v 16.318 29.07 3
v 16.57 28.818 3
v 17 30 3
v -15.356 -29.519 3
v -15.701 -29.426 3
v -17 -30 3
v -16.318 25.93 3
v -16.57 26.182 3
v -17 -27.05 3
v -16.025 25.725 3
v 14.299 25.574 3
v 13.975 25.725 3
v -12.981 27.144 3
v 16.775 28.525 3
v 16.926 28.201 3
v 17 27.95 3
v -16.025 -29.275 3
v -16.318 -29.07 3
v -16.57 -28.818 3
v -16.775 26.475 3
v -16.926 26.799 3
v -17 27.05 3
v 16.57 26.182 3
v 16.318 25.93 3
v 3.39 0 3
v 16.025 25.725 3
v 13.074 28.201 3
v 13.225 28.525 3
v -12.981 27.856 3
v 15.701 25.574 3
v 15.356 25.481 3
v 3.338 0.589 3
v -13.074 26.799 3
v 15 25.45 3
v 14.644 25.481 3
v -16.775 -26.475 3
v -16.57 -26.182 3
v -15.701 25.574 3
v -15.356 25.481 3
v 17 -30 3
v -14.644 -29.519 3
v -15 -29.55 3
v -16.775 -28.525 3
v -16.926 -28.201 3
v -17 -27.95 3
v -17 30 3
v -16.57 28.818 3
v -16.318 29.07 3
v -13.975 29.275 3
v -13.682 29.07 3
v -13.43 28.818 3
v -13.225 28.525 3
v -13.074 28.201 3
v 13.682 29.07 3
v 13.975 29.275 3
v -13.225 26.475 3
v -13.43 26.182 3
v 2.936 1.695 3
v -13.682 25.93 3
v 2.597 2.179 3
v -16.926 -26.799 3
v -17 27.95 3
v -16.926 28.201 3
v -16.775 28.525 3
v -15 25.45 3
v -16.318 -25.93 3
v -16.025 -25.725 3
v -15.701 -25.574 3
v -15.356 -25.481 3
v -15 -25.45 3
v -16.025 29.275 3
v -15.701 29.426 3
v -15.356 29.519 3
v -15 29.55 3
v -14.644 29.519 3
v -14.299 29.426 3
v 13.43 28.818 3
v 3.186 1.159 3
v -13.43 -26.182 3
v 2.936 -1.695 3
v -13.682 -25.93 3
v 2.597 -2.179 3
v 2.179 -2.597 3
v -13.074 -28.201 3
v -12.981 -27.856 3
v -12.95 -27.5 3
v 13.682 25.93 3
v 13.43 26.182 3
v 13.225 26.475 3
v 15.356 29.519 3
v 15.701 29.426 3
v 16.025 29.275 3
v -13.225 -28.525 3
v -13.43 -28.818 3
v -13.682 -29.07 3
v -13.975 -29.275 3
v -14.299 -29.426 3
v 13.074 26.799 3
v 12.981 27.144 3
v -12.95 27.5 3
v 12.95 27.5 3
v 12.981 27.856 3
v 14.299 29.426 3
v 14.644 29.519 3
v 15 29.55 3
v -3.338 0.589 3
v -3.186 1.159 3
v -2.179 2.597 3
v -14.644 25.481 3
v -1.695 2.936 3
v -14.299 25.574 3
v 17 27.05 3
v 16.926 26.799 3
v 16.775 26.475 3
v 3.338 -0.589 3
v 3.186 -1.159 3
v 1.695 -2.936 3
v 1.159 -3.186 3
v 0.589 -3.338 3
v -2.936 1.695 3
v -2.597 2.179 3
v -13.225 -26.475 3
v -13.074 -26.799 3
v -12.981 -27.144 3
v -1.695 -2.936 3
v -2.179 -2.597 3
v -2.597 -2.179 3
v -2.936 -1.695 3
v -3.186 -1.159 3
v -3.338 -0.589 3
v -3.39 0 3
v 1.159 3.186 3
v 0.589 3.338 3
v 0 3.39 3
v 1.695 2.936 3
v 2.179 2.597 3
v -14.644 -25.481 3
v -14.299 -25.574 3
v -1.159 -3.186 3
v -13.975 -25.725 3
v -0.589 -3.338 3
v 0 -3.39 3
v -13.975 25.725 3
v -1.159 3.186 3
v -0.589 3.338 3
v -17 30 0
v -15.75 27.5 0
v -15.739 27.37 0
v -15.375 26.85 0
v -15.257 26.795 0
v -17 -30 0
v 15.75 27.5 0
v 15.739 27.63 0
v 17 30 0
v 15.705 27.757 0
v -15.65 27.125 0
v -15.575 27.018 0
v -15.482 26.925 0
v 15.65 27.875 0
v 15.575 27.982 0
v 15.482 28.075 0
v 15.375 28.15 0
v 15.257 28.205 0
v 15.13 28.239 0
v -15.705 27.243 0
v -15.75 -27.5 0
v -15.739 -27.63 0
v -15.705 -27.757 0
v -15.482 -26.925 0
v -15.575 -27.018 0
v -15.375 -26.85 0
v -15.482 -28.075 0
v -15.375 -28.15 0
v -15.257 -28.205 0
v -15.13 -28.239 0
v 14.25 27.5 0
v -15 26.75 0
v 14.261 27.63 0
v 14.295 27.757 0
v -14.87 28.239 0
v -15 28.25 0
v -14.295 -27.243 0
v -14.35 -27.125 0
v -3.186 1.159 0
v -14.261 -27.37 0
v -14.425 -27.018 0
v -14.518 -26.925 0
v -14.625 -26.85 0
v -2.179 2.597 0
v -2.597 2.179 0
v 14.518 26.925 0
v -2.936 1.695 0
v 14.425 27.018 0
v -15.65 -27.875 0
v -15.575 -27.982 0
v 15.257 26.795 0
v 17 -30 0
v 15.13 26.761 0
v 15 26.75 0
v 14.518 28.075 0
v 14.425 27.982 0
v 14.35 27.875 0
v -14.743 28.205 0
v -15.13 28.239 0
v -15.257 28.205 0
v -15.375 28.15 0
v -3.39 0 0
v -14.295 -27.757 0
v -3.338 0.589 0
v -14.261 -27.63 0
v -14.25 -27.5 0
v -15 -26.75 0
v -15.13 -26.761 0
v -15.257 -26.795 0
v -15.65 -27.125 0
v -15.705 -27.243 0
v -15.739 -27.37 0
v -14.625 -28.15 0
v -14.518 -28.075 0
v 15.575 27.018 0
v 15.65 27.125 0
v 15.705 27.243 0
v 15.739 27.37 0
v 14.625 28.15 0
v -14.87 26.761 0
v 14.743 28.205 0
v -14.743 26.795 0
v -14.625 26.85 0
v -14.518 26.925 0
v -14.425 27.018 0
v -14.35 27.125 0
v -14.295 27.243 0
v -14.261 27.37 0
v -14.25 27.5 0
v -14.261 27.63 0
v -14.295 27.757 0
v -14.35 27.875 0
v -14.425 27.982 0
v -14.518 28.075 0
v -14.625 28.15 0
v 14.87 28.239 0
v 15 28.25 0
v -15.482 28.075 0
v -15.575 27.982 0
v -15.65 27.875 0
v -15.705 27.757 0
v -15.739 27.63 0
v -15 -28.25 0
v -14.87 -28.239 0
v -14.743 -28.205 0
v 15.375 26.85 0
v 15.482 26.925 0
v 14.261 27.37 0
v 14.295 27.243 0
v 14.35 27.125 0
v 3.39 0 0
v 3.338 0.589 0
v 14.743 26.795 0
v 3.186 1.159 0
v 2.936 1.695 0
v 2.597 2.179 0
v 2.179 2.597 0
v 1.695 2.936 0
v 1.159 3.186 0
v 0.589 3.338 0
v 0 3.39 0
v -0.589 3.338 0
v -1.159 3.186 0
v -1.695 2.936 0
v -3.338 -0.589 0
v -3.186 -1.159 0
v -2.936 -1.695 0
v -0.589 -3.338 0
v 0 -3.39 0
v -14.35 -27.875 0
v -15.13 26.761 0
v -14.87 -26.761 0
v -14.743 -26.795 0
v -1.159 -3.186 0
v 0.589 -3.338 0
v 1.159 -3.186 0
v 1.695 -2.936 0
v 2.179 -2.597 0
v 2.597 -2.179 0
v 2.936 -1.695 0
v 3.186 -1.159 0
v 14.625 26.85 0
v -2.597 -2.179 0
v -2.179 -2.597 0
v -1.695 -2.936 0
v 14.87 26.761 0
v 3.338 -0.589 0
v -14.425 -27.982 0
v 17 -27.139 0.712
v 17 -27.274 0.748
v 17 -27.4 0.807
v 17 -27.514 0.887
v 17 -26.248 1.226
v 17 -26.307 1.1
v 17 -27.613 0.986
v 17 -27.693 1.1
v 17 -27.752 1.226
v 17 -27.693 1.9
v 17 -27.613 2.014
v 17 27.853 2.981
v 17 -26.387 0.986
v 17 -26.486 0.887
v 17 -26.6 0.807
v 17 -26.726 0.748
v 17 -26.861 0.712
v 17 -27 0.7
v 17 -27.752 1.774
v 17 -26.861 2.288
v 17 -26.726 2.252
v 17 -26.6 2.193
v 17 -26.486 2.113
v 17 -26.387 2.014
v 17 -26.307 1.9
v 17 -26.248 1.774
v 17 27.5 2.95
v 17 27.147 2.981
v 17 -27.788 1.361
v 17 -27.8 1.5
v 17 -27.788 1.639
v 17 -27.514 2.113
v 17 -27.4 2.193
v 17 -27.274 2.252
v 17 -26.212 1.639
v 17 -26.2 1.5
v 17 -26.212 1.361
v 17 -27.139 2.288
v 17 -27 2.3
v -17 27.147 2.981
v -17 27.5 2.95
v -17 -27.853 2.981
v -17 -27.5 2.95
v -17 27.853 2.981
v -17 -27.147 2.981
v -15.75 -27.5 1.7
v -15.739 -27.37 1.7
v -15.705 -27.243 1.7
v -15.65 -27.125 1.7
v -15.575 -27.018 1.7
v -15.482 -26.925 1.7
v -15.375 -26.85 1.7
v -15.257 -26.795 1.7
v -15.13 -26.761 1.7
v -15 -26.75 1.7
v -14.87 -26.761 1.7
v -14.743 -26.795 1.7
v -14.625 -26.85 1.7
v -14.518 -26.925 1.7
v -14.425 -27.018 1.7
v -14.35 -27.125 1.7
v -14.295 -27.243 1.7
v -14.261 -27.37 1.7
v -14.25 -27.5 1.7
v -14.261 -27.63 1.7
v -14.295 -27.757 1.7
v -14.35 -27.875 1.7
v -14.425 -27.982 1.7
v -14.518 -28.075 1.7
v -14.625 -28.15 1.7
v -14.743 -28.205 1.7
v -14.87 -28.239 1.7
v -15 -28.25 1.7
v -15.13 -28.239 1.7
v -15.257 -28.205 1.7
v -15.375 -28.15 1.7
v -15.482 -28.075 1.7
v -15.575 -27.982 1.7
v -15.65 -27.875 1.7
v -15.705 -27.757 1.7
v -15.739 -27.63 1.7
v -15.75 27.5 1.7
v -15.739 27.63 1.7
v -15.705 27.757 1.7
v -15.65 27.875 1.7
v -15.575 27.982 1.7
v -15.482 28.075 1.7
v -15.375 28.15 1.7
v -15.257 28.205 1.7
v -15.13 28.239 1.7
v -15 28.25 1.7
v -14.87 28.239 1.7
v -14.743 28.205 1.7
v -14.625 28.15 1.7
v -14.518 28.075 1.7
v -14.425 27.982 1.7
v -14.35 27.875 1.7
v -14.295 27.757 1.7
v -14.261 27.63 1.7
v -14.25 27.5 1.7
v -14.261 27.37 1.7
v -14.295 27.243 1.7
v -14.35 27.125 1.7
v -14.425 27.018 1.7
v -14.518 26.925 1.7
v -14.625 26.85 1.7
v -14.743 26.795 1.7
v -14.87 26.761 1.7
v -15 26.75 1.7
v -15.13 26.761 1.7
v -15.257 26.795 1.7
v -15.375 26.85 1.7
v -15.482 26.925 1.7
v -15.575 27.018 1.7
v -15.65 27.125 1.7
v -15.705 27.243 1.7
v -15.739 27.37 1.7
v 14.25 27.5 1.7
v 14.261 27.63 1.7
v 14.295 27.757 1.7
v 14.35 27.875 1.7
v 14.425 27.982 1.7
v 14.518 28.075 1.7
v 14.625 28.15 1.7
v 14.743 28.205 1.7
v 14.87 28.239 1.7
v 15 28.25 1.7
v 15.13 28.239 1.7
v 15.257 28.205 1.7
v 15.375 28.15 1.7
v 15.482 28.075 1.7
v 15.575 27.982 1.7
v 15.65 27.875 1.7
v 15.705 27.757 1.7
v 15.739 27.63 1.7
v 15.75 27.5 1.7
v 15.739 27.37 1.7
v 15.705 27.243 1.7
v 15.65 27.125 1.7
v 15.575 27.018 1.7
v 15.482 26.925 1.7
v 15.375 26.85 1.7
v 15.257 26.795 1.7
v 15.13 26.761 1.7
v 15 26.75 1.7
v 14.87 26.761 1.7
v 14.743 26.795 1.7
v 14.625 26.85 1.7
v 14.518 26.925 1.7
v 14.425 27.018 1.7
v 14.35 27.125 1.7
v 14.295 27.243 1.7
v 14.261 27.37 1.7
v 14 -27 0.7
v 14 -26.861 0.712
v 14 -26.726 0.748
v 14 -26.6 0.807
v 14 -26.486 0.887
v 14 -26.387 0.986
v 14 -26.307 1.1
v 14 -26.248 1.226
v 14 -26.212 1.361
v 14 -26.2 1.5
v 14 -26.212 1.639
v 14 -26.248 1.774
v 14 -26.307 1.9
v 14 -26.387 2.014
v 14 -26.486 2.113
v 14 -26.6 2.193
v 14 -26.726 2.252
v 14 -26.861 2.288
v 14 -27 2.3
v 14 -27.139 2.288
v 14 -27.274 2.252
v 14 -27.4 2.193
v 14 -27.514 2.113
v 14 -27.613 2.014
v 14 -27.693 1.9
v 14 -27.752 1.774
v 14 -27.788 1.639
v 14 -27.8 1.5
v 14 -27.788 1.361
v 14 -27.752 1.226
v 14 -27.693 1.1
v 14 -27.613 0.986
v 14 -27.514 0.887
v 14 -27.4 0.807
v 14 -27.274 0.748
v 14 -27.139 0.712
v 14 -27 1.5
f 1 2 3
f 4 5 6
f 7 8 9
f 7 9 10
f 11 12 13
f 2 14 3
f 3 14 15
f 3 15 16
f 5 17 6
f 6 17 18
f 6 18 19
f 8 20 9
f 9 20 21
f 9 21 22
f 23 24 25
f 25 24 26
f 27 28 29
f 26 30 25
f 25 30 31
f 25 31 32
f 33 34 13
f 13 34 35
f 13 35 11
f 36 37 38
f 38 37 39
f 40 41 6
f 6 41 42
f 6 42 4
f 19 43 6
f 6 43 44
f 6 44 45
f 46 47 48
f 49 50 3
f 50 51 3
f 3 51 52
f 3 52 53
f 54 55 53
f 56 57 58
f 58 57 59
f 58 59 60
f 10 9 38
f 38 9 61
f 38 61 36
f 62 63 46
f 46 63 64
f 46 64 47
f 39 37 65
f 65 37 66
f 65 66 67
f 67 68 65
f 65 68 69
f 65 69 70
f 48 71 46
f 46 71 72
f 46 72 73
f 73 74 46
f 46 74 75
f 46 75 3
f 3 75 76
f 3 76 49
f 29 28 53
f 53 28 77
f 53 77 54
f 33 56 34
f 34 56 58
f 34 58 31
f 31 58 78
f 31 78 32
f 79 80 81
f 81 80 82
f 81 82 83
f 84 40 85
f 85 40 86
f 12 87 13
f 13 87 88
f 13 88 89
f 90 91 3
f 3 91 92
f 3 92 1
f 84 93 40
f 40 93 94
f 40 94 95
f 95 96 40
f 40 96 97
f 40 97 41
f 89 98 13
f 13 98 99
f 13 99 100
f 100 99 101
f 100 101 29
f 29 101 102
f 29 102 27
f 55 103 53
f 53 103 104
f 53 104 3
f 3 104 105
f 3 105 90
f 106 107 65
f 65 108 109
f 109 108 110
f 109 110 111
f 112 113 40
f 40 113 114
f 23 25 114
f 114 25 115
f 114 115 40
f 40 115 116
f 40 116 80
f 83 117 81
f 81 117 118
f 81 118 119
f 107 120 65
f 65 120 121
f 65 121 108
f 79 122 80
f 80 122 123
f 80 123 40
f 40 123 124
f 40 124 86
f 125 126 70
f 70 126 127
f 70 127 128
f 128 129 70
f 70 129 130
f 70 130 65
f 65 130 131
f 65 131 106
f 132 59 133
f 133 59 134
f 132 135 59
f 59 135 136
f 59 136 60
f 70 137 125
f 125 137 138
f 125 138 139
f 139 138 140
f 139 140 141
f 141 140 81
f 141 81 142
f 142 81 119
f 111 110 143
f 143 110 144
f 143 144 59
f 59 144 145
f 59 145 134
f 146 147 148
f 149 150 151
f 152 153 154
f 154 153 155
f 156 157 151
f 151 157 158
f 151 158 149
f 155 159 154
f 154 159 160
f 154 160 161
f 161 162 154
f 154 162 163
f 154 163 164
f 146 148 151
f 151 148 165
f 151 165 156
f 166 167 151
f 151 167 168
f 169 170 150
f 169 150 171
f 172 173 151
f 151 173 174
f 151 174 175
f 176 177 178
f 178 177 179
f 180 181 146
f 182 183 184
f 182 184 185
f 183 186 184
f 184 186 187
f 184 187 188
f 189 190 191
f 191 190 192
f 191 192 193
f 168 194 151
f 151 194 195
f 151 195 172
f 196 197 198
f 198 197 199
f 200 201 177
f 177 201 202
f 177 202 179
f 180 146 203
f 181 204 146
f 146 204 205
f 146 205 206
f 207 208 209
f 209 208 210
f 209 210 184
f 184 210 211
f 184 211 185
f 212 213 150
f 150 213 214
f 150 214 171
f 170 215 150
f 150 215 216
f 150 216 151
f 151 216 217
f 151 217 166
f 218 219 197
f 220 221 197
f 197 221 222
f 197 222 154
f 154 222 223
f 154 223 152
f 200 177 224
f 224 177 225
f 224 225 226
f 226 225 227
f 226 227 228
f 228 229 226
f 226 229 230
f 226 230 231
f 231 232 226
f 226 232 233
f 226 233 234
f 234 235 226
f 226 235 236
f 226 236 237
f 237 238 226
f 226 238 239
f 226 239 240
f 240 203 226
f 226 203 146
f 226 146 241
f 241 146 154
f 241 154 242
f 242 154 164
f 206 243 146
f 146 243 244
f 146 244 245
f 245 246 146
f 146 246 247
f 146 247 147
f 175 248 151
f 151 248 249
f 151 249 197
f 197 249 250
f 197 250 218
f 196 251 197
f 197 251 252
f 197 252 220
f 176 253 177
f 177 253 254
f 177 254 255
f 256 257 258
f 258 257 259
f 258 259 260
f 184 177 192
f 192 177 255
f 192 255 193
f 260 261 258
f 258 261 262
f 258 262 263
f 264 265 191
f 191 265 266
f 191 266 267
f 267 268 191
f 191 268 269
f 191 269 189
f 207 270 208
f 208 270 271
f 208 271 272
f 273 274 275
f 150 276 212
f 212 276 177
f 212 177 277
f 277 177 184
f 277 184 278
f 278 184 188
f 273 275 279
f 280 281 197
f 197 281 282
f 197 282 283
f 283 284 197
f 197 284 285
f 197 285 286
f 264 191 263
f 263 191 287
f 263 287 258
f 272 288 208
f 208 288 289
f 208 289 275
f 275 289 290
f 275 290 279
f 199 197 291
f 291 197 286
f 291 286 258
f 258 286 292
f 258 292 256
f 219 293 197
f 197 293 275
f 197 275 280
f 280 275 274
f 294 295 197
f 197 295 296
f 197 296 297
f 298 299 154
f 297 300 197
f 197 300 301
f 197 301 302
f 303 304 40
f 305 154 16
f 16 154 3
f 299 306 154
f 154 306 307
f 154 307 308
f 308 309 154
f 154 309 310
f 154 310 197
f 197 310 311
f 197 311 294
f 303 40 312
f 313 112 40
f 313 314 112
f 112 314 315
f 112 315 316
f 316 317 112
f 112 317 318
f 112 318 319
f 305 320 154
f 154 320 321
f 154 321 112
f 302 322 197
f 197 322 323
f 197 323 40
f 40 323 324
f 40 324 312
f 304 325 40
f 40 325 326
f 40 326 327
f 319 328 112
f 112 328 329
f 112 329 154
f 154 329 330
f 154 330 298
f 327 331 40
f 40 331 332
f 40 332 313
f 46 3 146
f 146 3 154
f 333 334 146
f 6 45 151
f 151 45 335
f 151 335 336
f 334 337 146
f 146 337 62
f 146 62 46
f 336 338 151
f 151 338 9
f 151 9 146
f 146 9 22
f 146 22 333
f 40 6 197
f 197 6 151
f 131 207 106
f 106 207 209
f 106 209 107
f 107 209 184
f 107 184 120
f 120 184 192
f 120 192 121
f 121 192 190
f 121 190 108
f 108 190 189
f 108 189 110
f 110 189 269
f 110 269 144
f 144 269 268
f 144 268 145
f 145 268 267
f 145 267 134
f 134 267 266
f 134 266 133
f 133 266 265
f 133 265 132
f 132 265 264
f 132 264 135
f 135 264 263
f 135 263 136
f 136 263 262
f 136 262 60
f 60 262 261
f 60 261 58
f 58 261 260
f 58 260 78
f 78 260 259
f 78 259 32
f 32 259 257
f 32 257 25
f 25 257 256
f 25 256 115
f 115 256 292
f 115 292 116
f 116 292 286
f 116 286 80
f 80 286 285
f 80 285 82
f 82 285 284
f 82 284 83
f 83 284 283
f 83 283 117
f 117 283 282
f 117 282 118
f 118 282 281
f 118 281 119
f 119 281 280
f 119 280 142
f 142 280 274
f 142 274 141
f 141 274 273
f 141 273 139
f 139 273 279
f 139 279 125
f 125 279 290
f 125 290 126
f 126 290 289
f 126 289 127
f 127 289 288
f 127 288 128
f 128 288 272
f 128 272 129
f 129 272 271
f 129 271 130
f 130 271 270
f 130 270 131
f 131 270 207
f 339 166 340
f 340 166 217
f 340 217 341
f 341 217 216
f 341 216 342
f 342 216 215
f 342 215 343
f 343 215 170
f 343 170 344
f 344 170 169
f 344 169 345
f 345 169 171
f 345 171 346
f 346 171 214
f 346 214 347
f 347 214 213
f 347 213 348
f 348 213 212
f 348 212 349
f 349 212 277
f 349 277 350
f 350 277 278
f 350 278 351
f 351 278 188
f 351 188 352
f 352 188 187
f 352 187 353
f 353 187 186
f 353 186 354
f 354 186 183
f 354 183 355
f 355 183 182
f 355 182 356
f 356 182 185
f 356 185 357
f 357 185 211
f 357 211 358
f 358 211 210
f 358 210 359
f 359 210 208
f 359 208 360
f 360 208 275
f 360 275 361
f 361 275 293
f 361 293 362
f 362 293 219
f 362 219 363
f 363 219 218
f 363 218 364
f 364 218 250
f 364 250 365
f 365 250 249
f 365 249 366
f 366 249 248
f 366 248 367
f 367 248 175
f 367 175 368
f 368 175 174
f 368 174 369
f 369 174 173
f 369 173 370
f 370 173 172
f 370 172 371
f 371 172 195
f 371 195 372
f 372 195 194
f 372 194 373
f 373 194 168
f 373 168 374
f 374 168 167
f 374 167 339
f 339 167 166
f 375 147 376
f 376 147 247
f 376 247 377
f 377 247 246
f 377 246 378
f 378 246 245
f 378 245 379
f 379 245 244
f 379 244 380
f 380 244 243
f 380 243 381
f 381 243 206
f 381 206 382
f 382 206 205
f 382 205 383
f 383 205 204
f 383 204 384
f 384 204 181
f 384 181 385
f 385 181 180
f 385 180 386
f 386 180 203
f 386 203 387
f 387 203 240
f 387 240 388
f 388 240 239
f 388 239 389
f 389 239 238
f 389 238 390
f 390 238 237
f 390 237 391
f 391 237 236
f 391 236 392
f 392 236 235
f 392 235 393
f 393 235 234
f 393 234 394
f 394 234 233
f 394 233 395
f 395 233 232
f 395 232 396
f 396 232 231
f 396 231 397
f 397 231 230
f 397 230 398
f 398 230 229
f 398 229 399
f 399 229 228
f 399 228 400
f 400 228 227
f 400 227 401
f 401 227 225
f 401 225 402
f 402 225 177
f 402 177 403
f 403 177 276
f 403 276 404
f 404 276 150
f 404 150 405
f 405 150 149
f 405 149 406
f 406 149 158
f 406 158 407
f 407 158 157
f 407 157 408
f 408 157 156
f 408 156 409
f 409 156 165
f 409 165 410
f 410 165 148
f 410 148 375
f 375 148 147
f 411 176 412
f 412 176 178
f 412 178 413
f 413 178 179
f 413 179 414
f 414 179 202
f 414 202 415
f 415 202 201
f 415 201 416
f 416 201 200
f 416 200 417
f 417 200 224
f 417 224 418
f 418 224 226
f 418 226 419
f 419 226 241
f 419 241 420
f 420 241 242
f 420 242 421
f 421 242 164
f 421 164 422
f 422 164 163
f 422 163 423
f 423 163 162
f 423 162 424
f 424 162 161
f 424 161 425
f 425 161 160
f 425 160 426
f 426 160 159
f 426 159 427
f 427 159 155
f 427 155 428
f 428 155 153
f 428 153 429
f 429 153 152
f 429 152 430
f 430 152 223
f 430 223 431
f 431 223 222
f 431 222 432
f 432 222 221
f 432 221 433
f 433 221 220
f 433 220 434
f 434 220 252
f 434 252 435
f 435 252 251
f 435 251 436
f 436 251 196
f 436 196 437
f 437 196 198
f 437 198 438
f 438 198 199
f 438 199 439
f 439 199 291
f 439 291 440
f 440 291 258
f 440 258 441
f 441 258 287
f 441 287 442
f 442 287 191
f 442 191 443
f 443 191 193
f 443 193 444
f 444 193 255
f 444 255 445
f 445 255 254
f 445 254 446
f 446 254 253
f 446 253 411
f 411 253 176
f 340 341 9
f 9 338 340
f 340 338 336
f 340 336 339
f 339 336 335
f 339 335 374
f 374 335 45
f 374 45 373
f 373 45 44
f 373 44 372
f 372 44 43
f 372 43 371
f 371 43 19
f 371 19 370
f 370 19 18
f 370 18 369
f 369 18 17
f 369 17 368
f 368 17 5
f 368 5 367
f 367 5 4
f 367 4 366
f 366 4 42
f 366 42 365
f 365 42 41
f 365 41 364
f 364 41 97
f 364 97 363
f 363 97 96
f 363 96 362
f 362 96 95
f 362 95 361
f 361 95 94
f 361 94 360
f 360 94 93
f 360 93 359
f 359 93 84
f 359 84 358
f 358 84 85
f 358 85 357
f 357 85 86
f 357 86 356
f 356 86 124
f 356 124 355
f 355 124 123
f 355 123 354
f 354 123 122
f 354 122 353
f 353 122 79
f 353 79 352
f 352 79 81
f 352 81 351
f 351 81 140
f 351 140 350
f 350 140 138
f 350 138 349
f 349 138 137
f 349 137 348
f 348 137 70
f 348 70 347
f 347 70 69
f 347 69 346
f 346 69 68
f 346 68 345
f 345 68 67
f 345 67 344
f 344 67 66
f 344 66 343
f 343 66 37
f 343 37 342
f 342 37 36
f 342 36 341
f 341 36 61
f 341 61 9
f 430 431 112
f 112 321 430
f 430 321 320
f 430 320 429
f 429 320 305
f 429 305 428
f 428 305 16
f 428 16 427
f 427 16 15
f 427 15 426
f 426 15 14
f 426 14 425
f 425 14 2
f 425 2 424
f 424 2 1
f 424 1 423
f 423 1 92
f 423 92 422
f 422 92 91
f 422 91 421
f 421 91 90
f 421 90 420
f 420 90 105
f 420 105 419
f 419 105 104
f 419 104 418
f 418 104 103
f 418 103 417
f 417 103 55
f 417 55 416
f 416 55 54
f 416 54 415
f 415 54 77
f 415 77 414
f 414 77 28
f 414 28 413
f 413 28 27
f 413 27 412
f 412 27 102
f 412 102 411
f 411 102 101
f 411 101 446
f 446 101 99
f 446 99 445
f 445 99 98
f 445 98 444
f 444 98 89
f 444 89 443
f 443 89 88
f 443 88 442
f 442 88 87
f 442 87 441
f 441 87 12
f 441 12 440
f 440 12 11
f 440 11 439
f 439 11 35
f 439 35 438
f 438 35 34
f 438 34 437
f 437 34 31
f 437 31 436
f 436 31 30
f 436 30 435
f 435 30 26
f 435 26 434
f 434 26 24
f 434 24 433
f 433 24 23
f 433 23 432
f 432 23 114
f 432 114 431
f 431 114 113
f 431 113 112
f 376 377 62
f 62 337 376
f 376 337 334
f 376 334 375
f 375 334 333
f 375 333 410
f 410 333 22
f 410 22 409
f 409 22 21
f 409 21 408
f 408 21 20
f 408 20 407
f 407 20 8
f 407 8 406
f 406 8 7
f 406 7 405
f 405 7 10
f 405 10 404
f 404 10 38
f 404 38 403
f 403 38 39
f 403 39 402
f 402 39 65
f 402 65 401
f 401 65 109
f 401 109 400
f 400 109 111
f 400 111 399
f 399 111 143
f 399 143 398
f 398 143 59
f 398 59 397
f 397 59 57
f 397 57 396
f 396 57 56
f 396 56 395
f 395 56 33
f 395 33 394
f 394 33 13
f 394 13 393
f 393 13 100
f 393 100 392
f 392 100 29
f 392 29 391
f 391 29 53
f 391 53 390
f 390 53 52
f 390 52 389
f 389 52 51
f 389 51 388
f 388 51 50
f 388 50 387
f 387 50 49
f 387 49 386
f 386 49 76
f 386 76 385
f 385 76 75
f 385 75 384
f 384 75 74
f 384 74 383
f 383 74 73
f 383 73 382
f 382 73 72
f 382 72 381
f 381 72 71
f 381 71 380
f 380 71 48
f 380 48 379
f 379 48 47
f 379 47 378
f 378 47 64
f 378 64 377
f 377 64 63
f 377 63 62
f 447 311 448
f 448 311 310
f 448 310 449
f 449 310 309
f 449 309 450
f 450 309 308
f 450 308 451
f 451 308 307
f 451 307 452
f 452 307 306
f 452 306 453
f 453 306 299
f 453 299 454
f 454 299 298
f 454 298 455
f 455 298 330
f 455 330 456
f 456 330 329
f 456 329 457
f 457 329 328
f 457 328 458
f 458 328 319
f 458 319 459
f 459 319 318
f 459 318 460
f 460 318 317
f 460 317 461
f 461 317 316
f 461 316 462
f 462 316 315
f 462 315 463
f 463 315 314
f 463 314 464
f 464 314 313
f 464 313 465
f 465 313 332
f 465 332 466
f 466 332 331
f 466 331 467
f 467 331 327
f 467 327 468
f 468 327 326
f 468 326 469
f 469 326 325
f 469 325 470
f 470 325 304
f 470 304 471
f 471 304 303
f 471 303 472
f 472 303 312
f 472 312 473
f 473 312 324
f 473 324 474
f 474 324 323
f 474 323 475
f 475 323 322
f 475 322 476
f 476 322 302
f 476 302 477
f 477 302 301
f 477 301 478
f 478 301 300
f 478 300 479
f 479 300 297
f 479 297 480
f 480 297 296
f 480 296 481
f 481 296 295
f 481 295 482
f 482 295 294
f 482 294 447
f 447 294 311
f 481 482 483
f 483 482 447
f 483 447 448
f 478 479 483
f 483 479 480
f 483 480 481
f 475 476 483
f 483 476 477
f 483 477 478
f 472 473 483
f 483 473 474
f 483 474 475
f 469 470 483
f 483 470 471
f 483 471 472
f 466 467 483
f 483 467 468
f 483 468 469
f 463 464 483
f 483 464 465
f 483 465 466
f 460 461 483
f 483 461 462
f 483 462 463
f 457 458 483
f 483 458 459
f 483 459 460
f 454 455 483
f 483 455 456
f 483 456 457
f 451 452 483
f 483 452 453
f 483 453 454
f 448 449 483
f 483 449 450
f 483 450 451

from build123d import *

# Parameters (mm, degrees)
SKETCH1_W           = 34
SKETCH1_H           = 60
SKETCH1_R           = 3.39
SKETCH1_R_2         = 0.75
BOSS_EXTRUDE1_DEPTH = 3
CHAMFER1_SIZE       = 1.3
SKETCH2_R           = 0.8
CUT_EXTRUDE1_DEPTH  = 3


with BuildPart() as part:
    # Sketch1 → Boss-Extrude1 (new body)
    with BuildSketch(Plane.XY):
        Rectangle(SKETCH1_W, SKETCH1_H)
        Circle(SKETCH1_R, mode=Mode.SUBTRACT)
        with Locations((-15, -27.5)):
            Circle(SKETCH1_R_2, mode=Mode.SUBTRACT)
        with Locations(Location((-15, 27.5, 0), (0, 0, 180))):
            Circle(SKETCH1_R_2, mode=Mode.SUBTRACT)
        with Locations((15, 27.5)):
            Circle(SKETCH1_R_2, mode=Mode.SUBTRACT)
    extrude(amount=BOSS_EXTRUDE1_DEPTH)

    # Chamfer1
    # the kernel refuses this chamfer: 1.3 mm, written as the material it takes off along each edge
    with BuildSketch(Plane(origin=(-15, -27.5, 3), x_dir=(1, 0, 0), z_dir=(0, -1, 0))) as chamfer1_piece_1:
        Polygon((0.75, -CHAMFER1_SIZE), (0.75 + CHAMFER1_SIZE, 0), (0.75, 0), align=None)
    revolve(axis=Axis((-15, -27.5, 3), (0, 0, 1)), mode=Mode.SUBTRACT)
    with BuildSketch(Plane(origin=(-15, 27.5, 3), x_dir=(-1, 0, 0), z_dir=(0, 1, 0))) as chamfer1_piece_2:
        Polygon((0.75, -CHAMFER1_SIZE), (0.75 + CHAMFER1_SIZE, 0), (0.75, 0), align=None)
    revolve(axis=Axis((-15, 27.5, 3), (0, 0, 1)), mode=Mode.SUBTRACT)
    with BuildSketch(Plane(origin=(15, 27.5, 3), x_dir=(1, 0, 0), z_dir=(0, -1, 0))) as chamfer1_piece_3:
        Polygon((0.75, -CHAMFER1_SIZE), (0.75 + CHAMFER1_SIZE, 0), (0.75, 0), align=None)
    revolve(axis=Axis((15, 27.5, 3), (0, 0, 1)), mode=Mode.SUBTRACT)

    # Sketch2 → Cut-Extrude1 (cut)
    with BuildSketch(Plane(origin=(17, 0, 0), x_dir=(0, 0, -1), z_dir=(1, 0, 0))):
        with Locations((-1.5, -27)):
            Circle(SKETCH2_R)
    extrude(amount=-CUT_EXTRUDE1_DEPTH, mode=Mode.SUBTRACT)


solid = part.part
